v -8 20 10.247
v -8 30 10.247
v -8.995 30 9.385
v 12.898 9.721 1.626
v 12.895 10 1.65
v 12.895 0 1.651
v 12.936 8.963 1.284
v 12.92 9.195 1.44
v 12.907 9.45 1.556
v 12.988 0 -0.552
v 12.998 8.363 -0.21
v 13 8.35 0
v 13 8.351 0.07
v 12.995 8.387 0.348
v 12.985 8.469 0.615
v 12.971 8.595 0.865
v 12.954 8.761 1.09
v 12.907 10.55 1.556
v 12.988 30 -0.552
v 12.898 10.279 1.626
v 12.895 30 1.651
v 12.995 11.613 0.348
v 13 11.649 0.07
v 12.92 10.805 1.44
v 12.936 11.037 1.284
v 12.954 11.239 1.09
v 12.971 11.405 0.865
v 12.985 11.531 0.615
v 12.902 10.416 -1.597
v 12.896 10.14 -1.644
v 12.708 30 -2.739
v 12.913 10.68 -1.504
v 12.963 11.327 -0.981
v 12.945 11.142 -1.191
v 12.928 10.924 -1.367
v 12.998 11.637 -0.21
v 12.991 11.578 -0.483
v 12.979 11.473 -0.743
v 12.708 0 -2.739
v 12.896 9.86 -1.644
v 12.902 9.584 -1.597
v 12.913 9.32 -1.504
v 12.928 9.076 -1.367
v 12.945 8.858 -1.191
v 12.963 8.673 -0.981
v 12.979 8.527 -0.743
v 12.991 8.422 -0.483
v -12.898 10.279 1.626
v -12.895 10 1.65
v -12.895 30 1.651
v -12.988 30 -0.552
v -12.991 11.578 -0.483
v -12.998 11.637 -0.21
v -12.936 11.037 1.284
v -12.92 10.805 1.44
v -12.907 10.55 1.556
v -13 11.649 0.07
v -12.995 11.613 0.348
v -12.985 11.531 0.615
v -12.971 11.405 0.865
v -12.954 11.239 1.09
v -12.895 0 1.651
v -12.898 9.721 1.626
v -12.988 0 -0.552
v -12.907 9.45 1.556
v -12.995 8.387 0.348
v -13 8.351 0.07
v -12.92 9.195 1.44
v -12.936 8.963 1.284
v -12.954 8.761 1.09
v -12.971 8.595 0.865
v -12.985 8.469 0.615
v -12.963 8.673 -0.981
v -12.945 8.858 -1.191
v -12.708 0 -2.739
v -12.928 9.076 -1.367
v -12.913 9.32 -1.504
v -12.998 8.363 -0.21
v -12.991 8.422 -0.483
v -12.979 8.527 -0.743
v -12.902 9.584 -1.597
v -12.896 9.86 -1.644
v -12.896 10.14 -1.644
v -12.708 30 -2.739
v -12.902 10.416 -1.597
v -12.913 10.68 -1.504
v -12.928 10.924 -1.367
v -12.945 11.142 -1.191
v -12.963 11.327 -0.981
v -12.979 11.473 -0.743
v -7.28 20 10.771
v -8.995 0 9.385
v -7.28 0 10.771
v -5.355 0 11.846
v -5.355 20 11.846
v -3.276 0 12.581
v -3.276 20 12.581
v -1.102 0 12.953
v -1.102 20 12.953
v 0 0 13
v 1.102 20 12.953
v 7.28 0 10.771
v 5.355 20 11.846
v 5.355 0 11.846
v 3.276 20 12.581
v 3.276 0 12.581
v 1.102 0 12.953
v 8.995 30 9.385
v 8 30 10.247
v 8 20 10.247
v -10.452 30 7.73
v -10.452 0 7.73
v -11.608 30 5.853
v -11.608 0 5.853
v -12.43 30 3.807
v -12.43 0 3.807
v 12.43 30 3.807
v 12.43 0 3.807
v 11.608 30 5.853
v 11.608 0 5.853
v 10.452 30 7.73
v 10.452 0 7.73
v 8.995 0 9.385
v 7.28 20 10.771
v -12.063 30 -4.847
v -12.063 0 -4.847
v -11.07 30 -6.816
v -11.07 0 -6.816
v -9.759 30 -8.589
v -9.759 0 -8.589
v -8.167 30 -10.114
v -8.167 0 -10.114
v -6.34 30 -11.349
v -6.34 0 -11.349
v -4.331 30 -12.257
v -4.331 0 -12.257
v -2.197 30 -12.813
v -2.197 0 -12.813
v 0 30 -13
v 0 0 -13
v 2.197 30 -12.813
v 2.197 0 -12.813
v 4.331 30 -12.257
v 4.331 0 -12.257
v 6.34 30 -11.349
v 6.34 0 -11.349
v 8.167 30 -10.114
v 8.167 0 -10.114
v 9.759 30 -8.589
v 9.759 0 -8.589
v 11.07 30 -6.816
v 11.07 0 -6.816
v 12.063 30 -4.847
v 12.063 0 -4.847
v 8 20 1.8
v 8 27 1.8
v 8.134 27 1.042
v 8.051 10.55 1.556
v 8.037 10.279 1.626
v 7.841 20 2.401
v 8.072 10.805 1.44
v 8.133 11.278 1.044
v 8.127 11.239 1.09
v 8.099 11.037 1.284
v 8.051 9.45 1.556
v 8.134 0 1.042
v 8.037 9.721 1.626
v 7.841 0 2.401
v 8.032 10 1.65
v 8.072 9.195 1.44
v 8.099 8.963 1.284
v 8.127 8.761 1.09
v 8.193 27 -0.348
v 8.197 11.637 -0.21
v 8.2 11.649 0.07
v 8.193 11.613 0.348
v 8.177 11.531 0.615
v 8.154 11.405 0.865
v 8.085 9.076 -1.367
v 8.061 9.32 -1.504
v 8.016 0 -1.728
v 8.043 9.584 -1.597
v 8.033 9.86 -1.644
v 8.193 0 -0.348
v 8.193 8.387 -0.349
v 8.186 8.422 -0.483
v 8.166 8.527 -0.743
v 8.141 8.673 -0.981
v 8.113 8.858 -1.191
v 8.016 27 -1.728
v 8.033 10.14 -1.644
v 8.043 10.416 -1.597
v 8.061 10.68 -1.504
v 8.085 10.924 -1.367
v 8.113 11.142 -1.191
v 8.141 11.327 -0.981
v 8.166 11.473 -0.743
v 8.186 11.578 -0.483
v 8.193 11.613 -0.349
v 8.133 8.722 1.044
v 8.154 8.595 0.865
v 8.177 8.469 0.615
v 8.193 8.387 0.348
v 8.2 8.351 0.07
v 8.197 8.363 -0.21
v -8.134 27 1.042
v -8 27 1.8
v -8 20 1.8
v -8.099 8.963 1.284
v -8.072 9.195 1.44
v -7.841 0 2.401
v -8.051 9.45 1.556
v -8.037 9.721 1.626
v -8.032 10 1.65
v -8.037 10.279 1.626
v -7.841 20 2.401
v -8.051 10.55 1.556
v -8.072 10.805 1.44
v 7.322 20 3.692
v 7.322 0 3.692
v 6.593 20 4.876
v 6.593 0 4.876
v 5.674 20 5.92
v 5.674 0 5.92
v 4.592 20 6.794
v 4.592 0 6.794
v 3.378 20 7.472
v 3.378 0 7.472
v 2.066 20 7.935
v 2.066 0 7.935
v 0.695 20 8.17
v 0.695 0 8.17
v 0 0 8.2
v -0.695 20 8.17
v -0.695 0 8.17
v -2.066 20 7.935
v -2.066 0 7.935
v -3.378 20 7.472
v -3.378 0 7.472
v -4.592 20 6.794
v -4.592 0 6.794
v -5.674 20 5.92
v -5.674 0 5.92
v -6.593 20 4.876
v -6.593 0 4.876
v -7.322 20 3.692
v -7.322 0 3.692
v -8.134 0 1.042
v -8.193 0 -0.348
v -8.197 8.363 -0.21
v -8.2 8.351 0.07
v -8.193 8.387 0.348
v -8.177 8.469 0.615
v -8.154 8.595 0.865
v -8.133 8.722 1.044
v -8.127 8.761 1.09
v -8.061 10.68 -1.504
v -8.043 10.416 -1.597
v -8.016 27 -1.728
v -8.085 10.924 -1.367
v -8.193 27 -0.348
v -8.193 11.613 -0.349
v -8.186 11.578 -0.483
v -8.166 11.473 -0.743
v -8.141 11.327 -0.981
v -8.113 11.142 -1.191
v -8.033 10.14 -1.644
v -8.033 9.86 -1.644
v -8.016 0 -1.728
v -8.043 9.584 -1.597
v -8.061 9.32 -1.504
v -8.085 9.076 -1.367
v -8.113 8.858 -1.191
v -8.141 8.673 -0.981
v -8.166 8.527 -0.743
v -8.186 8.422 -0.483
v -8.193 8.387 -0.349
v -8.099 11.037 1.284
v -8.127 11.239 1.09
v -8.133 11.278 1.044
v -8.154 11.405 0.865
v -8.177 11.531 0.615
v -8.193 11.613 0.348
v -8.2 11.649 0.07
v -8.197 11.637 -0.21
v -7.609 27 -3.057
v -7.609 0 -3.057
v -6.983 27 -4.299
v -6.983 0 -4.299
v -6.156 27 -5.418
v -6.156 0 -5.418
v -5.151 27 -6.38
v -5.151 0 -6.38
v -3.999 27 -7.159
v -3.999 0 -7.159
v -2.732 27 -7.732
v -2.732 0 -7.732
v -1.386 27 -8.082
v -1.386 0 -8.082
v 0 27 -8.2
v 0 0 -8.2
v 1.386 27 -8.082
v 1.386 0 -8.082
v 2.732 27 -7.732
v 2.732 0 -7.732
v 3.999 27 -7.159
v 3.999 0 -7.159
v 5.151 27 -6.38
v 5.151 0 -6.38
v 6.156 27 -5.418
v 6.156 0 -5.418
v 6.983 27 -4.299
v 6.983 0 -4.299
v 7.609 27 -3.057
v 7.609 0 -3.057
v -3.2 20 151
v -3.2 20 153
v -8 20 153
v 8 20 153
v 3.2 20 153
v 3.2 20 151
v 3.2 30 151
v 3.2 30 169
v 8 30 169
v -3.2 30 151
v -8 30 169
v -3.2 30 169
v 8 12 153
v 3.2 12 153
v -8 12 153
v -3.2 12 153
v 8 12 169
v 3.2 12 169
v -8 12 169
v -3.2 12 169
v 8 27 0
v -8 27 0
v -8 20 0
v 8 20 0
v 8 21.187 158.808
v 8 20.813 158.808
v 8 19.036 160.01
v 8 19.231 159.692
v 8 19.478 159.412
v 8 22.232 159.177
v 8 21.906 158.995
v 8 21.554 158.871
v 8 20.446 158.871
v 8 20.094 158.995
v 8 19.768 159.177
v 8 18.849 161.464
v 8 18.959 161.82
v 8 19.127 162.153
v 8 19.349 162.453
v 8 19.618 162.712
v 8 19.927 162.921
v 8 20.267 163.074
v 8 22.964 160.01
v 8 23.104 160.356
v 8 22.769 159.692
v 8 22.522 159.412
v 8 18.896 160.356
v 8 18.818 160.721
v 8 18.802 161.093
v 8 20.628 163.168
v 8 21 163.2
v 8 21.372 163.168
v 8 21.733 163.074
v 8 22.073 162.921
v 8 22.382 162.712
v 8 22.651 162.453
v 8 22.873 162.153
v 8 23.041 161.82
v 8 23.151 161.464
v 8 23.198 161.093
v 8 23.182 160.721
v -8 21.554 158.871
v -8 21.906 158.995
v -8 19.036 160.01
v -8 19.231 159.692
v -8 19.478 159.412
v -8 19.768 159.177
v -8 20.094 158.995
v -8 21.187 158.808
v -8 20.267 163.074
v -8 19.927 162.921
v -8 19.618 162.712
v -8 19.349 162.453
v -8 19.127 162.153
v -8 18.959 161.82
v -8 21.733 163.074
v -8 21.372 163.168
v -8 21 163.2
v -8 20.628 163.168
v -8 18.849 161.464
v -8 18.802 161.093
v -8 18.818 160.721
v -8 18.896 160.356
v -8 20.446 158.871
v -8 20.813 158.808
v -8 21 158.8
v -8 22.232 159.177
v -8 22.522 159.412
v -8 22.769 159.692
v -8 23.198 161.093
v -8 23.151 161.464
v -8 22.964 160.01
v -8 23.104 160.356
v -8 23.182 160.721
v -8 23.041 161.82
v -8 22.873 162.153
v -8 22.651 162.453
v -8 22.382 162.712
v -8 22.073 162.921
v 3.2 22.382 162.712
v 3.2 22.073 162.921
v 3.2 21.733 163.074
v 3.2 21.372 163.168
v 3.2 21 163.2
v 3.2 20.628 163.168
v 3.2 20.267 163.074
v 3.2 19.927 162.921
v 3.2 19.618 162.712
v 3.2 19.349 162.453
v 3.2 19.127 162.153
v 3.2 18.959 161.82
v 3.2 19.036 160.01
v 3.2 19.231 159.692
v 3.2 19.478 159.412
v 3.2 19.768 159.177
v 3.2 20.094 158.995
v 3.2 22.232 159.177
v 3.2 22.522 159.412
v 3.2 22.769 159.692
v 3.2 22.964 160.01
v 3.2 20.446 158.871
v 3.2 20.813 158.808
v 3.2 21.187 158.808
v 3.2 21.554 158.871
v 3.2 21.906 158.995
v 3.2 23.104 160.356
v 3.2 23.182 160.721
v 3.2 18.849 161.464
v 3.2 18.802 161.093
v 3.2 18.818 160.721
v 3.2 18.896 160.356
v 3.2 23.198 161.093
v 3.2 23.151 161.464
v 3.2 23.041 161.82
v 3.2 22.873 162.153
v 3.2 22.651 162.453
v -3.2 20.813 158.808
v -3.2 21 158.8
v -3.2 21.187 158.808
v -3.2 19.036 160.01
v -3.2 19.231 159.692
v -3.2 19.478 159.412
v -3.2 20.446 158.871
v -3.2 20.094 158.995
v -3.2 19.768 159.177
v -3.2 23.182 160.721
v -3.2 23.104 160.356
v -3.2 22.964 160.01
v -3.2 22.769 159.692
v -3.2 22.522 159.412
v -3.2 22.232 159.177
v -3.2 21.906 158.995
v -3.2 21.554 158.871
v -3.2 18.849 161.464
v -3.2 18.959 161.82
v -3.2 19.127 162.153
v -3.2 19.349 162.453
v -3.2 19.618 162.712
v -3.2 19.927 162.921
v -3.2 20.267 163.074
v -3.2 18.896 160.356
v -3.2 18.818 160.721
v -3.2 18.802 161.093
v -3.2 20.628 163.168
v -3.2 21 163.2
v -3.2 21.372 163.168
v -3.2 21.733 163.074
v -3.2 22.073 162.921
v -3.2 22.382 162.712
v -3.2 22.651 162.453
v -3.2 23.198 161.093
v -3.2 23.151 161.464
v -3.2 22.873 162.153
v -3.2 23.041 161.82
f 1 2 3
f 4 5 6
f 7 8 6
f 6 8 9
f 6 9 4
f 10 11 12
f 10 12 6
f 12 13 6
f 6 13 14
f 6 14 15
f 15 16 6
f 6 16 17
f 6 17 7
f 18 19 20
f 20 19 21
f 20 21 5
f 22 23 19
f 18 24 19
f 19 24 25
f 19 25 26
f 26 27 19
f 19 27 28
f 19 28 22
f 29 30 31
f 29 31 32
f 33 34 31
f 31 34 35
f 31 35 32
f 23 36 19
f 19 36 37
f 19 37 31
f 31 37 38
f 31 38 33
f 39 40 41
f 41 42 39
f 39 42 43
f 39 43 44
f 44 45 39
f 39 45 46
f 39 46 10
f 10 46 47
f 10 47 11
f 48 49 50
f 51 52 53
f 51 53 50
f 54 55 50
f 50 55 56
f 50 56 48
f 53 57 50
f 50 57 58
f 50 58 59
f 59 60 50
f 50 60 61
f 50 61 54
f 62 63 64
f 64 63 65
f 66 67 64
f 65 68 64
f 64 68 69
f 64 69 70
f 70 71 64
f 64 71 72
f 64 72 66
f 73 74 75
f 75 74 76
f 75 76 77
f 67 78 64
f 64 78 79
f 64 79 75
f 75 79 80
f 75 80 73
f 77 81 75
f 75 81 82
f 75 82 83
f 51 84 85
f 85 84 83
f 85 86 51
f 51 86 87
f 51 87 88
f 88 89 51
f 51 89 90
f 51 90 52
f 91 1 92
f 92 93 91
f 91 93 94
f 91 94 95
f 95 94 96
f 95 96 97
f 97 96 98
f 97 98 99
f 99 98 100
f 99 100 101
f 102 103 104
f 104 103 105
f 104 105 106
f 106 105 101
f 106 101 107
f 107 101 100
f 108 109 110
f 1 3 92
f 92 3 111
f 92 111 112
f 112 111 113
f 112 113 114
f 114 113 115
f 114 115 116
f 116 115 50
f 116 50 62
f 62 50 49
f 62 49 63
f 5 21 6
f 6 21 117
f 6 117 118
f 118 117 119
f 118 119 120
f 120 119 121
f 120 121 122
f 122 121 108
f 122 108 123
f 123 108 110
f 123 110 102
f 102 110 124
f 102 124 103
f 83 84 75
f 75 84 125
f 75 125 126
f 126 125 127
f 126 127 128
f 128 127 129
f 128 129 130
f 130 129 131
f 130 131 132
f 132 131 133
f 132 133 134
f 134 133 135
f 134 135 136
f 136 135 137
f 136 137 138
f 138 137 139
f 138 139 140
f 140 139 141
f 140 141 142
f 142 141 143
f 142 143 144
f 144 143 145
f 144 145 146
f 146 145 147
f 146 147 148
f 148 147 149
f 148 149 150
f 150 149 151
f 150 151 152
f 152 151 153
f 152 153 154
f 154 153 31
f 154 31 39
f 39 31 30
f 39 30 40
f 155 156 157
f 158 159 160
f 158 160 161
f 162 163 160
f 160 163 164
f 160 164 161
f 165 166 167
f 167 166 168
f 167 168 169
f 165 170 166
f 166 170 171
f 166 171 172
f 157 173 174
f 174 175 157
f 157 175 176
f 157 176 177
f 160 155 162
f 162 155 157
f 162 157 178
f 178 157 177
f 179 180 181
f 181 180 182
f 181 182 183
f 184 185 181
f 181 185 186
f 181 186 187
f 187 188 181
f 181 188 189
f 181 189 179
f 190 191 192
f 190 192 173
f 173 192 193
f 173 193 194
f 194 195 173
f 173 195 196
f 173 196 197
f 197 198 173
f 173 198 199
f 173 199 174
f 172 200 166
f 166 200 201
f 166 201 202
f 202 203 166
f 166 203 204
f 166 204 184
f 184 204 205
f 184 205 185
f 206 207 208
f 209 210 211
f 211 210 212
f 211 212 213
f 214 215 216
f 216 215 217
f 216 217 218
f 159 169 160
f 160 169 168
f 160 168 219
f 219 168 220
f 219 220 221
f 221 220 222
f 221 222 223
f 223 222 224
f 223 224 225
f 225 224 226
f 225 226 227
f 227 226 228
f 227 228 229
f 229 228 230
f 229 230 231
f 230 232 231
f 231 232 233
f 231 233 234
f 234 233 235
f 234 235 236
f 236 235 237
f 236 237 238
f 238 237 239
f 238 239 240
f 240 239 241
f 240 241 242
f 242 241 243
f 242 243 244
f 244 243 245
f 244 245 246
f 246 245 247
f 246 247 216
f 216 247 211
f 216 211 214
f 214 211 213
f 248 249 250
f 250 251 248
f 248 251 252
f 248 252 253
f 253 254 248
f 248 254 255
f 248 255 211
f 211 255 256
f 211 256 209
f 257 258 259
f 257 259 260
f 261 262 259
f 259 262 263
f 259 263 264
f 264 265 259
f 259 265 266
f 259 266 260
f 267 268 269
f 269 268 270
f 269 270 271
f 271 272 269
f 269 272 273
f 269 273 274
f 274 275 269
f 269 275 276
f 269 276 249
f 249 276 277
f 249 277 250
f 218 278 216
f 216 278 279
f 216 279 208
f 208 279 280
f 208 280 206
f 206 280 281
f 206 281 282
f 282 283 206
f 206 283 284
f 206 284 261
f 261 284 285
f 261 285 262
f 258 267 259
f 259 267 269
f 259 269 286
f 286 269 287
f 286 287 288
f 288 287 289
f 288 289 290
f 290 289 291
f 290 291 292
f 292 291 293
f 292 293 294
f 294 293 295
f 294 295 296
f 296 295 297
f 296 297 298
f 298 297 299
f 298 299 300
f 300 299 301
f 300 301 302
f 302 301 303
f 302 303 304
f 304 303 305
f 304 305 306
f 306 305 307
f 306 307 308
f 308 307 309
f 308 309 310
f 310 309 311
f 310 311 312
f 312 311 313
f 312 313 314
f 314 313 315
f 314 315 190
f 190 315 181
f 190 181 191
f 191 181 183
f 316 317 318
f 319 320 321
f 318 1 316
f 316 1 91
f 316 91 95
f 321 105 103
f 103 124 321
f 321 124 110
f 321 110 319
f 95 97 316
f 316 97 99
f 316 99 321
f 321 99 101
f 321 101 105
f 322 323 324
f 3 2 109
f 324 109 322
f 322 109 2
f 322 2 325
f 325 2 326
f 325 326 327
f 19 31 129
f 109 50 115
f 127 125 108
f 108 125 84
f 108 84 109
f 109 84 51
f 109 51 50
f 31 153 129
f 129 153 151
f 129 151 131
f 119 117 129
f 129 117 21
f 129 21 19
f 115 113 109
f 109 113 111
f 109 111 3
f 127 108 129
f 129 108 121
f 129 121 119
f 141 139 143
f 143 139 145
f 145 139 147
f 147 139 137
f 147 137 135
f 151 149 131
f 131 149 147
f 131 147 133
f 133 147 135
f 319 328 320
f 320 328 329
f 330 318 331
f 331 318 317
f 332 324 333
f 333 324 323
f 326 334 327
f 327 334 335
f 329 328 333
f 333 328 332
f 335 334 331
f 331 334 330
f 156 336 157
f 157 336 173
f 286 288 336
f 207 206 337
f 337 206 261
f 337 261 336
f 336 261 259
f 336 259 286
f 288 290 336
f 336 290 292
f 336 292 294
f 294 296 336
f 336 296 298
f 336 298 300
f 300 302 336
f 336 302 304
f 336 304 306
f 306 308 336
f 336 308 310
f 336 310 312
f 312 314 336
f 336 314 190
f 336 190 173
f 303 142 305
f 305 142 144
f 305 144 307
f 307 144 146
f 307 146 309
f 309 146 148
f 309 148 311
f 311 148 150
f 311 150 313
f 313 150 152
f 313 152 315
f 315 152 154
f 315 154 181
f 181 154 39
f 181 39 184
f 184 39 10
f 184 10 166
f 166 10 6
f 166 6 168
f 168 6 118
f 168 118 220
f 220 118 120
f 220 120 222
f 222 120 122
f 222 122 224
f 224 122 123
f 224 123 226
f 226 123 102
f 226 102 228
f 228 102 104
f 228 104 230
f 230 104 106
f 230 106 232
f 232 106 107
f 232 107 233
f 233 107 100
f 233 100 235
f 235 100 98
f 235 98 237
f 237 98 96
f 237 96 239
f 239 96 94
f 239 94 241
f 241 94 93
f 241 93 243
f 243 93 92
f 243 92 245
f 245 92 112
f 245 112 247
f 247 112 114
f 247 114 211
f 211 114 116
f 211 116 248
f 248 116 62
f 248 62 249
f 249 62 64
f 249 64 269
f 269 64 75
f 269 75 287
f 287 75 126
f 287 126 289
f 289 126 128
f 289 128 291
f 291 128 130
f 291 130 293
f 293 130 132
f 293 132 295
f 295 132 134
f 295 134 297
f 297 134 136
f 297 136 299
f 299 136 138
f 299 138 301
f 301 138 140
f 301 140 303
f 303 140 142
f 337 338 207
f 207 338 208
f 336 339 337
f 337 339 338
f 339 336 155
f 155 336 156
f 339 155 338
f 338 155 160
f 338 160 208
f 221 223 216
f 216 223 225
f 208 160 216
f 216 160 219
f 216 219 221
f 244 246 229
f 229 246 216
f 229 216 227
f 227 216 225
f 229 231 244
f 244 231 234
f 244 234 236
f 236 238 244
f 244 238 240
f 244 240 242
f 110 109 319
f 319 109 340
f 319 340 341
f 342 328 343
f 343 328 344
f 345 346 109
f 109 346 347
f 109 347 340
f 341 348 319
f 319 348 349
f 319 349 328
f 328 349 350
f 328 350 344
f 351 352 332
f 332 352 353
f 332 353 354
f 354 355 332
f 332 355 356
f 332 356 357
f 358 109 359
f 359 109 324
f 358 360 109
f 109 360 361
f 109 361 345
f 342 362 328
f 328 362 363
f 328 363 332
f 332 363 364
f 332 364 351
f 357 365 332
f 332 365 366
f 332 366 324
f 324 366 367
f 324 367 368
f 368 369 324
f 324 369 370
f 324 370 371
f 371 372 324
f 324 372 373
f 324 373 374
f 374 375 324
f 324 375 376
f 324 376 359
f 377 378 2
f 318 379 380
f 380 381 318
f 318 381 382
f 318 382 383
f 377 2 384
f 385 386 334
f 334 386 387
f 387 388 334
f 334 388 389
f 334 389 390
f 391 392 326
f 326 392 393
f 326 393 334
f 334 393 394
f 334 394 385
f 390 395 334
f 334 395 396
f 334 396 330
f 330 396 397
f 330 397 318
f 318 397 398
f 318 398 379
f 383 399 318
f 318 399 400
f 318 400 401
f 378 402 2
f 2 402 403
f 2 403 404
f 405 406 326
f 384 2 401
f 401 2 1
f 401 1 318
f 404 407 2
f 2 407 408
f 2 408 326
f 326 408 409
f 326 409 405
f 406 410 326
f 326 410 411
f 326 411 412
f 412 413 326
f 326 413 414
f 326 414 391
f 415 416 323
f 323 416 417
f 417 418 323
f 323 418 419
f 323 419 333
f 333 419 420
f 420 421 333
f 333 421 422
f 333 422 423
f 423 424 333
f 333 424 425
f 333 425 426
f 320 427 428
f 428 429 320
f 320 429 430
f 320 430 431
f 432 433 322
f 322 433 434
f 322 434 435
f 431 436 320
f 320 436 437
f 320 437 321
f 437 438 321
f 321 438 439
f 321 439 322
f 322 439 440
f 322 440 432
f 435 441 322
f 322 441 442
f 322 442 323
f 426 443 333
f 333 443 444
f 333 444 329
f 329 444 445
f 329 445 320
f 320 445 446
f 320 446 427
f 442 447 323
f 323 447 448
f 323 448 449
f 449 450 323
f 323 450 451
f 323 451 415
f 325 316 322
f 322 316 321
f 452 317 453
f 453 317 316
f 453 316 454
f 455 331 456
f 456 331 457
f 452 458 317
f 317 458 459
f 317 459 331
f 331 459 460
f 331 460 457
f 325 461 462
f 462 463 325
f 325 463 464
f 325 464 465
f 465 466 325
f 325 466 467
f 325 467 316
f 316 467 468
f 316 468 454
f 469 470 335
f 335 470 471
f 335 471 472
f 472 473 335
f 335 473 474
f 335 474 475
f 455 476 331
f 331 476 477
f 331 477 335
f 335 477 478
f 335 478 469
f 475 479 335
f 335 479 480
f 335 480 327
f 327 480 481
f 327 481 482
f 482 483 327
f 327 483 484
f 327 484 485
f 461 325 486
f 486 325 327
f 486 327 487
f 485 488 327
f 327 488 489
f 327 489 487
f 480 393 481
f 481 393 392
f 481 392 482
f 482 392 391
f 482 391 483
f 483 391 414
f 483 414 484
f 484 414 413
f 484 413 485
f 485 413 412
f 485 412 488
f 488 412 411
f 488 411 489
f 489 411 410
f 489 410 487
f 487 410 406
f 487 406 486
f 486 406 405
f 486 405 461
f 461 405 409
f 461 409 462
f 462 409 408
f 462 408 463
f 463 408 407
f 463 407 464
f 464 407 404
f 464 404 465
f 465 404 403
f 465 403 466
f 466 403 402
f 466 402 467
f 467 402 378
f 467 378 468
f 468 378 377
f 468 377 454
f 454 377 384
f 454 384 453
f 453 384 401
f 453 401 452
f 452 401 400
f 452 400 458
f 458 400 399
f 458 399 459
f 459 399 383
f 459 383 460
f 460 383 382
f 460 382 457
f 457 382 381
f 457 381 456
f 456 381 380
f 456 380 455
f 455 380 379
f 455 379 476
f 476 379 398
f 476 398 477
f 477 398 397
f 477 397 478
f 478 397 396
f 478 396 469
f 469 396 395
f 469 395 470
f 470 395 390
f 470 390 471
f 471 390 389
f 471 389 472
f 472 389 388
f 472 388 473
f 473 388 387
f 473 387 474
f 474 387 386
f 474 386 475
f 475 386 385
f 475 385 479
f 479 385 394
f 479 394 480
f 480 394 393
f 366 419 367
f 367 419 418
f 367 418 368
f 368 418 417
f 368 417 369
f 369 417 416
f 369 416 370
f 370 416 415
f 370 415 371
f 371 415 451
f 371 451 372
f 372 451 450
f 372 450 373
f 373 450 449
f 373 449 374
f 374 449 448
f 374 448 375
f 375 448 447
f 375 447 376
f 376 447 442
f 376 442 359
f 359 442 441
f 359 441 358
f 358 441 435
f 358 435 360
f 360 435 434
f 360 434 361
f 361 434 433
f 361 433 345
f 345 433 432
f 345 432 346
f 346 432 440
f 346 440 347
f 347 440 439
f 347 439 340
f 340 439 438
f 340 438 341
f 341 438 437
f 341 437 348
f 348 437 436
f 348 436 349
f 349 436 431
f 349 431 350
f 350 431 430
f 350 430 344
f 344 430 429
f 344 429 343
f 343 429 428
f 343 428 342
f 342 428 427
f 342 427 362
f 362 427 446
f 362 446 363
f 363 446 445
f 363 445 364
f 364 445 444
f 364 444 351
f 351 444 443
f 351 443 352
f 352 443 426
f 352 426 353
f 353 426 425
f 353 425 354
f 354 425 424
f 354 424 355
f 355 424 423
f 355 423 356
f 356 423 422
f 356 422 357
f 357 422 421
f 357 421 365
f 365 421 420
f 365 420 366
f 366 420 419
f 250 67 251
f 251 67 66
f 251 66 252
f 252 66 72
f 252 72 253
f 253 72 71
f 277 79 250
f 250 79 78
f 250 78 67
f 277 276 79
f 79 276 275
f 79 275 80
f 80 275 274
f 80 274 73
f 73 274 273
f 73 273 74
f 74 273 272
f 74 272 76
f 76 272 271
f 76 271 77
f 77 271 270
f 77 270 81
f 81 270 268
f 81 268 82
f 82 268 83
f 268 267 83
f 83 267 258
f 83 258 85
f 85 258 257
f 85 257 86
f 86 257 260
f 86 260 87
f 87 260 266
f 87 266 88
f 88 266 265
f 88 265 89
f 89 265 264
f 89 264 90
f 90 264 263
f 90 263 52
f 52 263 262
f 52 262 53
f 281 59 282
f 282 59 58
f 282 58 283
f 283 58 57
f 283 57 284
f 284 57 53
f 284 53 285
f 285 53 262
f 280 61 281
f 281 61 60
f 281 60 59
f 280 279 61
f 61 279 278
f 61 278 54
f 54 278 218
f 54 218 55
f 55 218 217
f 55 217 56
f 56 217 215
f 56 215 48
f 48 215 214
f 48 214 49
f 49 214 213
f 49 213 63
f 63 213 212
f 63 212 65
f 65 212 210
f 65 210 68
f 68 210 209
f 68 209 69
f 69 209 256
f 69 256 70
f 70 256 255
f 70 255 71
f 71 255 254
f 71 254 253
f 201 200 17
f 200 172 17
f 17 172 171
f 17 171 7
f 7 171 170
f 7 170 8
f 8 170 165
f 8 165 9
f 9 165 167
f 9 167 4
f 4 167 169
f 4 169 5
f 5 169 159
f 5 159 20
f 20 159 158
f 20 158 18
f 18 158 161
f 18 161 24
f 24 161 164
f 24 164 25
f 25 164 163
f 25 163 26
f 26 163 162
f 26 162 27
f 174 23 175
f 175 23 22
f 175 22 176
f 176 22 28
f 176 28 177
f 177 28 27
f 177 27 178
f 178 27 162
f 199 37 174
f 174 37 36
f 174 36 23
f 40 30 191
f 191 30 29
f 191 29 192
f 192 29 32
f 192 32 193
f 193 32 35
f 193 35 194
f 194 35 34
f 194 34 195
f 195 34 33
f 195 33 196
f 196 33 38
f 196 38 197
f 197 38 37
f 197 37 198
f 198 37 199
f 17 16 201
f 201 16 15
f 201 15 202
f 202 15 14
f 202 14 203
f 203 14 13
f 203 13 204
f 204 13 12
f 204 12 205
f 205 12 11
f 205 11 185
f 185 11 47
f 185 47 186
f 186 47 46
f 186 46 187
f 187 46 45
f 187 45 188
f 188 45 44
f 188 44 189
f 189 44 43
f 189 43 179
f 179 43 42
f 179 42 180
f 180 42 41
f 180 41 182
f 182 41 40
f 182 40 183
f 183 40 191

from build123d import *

# Parameters (mm, degrees)
CROQUIS_ZOCALO_R                   = 13
ZOCALO_DEPTH                       = 30
CROQUIS_ZOCALO_HUECO_R             = 8.2
ZOCALO_HUECO_DEPTH                 = 27
CROQUIS_BARRA_W                    = 16
CROQUIS_BARRA_H                    = 155
BARRA_DEPTH                        = 10
CROQUIS_HORQUILLA_W                = 16
CROQUIS_HORQUILLA_H                = 16
HORQUILLA_DEPTH                    = 18
HORQUILLA_RANURA_DEPTH             = 173.13366899
HORQUILLA_RANURA_DEPTH_BACK        = 173.13366899
CROQUIS_HORQUILLA_RANURA_W         = 6.4
CROQUIS_HORQUILLA_RANURA_H         = 20
EJE_CAMARA_Y_PRISIONERO_DEPTH      = 173.13366899
EJE_CAMARA_Y_PRISIONERO_DEPTH_BACK = 173.13366899
CROQUIS_EJES_R                     = 2.2
CROQUIS_EJES_R_2                   = 1.65


with BuildPart() as part:
    # Croquis_zocalo → Zocalo (new body)
    with BuildSketch(Plane(origin=(0, 0, 0), x_dir=(1, 0, 0), z_dir=(0, 1, 0))):
        with Locations(Location((0, 0, 0), (0, 0, 270))):
            Circle(CROQUIS_ZOCALO_R)
    extrude(amount=ZOCALO_DEPTH)

    # Croquis_zocalo_hueco → Zocalo_hueco (cut)
    with BuildSketch(Plane(origin=(0, 0, 0), x_dir=(1, 0, 0), z_dir=(0, 1, 0))):
        with Locations(Location((0, 0, 0), (0, 0, 270))):
            Circle(CROQUIS_ZOCALO_HUECO_R)
    extrude(amount=ZOCALO_HUECO_DEPTH, mode=Mode.SUBTRACT)

    # Croquis_barra → Barra (add)
    with BuildSketch(Plane(origin=(0, 20, 0), x_dir=(1, 0, 0), z_dir=(0, 1, 0))):
        with Locations((0, -77.5)):
            Rectangle(CROQUIS_BARRA_W, CROQUIS_BARRA_H)
    extrude(amount=BARRA_DEPTH)

    # Croquis_horquilla → Horquilla (add)
    with BuildSketch(Plane(origin=(0, 12, 0), x_dir=(1, 0, 0), z_dir=(0, 1, 0))):
        with Locations((0, -161)):
            Rectangle(CROQUIS_HORQUILLA_W, CROQUIS_HORQUILLA_H)
    extrude(amount=HORQUILLA_DEPTH)

    # Croquis_horquilla_ranura → Horquilla_ranura (cut, two sides: drawn at the far end of the back side and taken through both)
    with BuildSketch(Plane(origin=(0, 0, 0), x_dir=(1, 0, 0), z_dir=(0, 1, 0)).offset(-HORQUILLA_RANURA_DEPTH_BACK)):
        with Locations((0, -161)):
            Rectangle(CROQUIS_HORQUILLA_RANURA_W, CROQUIS_HORQUILLA_RANURA_H)
    extrude(amount=HORQUILLA_RANURA_DEPTH + HORQUILLA_RANURA_DEPTH_BACK, mode=Mode.SUBTRACT)

    # Croquis_ejes → Eje_camara_y_prisionero (cut, two sides: drawn at the far end of the back side and taken through both)
    with BuildSketch(Plane(origin=(0, 0, 0), x_dir=(0, 0, -1), z_dir=(1, 0, 0)).offset(-EJE_CAMARA_Y_PRISIONERO_DEPTH_BACK)):
        with Locations((-161, 21)):
            Circle(CROQUIS_EJES_R)
        with Locations(Location((0, 10, 0), (0, 0, 180))):
            Circle(CROQUIS_EJES_R_2)
    extrude(amount=EJE_CAMARA_Y_PRISIONERO_DEPTH + EJE_CAMARA_Y_PRISIONERO_DEPTH_BACK, mode=Mode.SUBTRACT)


solid = part.part
